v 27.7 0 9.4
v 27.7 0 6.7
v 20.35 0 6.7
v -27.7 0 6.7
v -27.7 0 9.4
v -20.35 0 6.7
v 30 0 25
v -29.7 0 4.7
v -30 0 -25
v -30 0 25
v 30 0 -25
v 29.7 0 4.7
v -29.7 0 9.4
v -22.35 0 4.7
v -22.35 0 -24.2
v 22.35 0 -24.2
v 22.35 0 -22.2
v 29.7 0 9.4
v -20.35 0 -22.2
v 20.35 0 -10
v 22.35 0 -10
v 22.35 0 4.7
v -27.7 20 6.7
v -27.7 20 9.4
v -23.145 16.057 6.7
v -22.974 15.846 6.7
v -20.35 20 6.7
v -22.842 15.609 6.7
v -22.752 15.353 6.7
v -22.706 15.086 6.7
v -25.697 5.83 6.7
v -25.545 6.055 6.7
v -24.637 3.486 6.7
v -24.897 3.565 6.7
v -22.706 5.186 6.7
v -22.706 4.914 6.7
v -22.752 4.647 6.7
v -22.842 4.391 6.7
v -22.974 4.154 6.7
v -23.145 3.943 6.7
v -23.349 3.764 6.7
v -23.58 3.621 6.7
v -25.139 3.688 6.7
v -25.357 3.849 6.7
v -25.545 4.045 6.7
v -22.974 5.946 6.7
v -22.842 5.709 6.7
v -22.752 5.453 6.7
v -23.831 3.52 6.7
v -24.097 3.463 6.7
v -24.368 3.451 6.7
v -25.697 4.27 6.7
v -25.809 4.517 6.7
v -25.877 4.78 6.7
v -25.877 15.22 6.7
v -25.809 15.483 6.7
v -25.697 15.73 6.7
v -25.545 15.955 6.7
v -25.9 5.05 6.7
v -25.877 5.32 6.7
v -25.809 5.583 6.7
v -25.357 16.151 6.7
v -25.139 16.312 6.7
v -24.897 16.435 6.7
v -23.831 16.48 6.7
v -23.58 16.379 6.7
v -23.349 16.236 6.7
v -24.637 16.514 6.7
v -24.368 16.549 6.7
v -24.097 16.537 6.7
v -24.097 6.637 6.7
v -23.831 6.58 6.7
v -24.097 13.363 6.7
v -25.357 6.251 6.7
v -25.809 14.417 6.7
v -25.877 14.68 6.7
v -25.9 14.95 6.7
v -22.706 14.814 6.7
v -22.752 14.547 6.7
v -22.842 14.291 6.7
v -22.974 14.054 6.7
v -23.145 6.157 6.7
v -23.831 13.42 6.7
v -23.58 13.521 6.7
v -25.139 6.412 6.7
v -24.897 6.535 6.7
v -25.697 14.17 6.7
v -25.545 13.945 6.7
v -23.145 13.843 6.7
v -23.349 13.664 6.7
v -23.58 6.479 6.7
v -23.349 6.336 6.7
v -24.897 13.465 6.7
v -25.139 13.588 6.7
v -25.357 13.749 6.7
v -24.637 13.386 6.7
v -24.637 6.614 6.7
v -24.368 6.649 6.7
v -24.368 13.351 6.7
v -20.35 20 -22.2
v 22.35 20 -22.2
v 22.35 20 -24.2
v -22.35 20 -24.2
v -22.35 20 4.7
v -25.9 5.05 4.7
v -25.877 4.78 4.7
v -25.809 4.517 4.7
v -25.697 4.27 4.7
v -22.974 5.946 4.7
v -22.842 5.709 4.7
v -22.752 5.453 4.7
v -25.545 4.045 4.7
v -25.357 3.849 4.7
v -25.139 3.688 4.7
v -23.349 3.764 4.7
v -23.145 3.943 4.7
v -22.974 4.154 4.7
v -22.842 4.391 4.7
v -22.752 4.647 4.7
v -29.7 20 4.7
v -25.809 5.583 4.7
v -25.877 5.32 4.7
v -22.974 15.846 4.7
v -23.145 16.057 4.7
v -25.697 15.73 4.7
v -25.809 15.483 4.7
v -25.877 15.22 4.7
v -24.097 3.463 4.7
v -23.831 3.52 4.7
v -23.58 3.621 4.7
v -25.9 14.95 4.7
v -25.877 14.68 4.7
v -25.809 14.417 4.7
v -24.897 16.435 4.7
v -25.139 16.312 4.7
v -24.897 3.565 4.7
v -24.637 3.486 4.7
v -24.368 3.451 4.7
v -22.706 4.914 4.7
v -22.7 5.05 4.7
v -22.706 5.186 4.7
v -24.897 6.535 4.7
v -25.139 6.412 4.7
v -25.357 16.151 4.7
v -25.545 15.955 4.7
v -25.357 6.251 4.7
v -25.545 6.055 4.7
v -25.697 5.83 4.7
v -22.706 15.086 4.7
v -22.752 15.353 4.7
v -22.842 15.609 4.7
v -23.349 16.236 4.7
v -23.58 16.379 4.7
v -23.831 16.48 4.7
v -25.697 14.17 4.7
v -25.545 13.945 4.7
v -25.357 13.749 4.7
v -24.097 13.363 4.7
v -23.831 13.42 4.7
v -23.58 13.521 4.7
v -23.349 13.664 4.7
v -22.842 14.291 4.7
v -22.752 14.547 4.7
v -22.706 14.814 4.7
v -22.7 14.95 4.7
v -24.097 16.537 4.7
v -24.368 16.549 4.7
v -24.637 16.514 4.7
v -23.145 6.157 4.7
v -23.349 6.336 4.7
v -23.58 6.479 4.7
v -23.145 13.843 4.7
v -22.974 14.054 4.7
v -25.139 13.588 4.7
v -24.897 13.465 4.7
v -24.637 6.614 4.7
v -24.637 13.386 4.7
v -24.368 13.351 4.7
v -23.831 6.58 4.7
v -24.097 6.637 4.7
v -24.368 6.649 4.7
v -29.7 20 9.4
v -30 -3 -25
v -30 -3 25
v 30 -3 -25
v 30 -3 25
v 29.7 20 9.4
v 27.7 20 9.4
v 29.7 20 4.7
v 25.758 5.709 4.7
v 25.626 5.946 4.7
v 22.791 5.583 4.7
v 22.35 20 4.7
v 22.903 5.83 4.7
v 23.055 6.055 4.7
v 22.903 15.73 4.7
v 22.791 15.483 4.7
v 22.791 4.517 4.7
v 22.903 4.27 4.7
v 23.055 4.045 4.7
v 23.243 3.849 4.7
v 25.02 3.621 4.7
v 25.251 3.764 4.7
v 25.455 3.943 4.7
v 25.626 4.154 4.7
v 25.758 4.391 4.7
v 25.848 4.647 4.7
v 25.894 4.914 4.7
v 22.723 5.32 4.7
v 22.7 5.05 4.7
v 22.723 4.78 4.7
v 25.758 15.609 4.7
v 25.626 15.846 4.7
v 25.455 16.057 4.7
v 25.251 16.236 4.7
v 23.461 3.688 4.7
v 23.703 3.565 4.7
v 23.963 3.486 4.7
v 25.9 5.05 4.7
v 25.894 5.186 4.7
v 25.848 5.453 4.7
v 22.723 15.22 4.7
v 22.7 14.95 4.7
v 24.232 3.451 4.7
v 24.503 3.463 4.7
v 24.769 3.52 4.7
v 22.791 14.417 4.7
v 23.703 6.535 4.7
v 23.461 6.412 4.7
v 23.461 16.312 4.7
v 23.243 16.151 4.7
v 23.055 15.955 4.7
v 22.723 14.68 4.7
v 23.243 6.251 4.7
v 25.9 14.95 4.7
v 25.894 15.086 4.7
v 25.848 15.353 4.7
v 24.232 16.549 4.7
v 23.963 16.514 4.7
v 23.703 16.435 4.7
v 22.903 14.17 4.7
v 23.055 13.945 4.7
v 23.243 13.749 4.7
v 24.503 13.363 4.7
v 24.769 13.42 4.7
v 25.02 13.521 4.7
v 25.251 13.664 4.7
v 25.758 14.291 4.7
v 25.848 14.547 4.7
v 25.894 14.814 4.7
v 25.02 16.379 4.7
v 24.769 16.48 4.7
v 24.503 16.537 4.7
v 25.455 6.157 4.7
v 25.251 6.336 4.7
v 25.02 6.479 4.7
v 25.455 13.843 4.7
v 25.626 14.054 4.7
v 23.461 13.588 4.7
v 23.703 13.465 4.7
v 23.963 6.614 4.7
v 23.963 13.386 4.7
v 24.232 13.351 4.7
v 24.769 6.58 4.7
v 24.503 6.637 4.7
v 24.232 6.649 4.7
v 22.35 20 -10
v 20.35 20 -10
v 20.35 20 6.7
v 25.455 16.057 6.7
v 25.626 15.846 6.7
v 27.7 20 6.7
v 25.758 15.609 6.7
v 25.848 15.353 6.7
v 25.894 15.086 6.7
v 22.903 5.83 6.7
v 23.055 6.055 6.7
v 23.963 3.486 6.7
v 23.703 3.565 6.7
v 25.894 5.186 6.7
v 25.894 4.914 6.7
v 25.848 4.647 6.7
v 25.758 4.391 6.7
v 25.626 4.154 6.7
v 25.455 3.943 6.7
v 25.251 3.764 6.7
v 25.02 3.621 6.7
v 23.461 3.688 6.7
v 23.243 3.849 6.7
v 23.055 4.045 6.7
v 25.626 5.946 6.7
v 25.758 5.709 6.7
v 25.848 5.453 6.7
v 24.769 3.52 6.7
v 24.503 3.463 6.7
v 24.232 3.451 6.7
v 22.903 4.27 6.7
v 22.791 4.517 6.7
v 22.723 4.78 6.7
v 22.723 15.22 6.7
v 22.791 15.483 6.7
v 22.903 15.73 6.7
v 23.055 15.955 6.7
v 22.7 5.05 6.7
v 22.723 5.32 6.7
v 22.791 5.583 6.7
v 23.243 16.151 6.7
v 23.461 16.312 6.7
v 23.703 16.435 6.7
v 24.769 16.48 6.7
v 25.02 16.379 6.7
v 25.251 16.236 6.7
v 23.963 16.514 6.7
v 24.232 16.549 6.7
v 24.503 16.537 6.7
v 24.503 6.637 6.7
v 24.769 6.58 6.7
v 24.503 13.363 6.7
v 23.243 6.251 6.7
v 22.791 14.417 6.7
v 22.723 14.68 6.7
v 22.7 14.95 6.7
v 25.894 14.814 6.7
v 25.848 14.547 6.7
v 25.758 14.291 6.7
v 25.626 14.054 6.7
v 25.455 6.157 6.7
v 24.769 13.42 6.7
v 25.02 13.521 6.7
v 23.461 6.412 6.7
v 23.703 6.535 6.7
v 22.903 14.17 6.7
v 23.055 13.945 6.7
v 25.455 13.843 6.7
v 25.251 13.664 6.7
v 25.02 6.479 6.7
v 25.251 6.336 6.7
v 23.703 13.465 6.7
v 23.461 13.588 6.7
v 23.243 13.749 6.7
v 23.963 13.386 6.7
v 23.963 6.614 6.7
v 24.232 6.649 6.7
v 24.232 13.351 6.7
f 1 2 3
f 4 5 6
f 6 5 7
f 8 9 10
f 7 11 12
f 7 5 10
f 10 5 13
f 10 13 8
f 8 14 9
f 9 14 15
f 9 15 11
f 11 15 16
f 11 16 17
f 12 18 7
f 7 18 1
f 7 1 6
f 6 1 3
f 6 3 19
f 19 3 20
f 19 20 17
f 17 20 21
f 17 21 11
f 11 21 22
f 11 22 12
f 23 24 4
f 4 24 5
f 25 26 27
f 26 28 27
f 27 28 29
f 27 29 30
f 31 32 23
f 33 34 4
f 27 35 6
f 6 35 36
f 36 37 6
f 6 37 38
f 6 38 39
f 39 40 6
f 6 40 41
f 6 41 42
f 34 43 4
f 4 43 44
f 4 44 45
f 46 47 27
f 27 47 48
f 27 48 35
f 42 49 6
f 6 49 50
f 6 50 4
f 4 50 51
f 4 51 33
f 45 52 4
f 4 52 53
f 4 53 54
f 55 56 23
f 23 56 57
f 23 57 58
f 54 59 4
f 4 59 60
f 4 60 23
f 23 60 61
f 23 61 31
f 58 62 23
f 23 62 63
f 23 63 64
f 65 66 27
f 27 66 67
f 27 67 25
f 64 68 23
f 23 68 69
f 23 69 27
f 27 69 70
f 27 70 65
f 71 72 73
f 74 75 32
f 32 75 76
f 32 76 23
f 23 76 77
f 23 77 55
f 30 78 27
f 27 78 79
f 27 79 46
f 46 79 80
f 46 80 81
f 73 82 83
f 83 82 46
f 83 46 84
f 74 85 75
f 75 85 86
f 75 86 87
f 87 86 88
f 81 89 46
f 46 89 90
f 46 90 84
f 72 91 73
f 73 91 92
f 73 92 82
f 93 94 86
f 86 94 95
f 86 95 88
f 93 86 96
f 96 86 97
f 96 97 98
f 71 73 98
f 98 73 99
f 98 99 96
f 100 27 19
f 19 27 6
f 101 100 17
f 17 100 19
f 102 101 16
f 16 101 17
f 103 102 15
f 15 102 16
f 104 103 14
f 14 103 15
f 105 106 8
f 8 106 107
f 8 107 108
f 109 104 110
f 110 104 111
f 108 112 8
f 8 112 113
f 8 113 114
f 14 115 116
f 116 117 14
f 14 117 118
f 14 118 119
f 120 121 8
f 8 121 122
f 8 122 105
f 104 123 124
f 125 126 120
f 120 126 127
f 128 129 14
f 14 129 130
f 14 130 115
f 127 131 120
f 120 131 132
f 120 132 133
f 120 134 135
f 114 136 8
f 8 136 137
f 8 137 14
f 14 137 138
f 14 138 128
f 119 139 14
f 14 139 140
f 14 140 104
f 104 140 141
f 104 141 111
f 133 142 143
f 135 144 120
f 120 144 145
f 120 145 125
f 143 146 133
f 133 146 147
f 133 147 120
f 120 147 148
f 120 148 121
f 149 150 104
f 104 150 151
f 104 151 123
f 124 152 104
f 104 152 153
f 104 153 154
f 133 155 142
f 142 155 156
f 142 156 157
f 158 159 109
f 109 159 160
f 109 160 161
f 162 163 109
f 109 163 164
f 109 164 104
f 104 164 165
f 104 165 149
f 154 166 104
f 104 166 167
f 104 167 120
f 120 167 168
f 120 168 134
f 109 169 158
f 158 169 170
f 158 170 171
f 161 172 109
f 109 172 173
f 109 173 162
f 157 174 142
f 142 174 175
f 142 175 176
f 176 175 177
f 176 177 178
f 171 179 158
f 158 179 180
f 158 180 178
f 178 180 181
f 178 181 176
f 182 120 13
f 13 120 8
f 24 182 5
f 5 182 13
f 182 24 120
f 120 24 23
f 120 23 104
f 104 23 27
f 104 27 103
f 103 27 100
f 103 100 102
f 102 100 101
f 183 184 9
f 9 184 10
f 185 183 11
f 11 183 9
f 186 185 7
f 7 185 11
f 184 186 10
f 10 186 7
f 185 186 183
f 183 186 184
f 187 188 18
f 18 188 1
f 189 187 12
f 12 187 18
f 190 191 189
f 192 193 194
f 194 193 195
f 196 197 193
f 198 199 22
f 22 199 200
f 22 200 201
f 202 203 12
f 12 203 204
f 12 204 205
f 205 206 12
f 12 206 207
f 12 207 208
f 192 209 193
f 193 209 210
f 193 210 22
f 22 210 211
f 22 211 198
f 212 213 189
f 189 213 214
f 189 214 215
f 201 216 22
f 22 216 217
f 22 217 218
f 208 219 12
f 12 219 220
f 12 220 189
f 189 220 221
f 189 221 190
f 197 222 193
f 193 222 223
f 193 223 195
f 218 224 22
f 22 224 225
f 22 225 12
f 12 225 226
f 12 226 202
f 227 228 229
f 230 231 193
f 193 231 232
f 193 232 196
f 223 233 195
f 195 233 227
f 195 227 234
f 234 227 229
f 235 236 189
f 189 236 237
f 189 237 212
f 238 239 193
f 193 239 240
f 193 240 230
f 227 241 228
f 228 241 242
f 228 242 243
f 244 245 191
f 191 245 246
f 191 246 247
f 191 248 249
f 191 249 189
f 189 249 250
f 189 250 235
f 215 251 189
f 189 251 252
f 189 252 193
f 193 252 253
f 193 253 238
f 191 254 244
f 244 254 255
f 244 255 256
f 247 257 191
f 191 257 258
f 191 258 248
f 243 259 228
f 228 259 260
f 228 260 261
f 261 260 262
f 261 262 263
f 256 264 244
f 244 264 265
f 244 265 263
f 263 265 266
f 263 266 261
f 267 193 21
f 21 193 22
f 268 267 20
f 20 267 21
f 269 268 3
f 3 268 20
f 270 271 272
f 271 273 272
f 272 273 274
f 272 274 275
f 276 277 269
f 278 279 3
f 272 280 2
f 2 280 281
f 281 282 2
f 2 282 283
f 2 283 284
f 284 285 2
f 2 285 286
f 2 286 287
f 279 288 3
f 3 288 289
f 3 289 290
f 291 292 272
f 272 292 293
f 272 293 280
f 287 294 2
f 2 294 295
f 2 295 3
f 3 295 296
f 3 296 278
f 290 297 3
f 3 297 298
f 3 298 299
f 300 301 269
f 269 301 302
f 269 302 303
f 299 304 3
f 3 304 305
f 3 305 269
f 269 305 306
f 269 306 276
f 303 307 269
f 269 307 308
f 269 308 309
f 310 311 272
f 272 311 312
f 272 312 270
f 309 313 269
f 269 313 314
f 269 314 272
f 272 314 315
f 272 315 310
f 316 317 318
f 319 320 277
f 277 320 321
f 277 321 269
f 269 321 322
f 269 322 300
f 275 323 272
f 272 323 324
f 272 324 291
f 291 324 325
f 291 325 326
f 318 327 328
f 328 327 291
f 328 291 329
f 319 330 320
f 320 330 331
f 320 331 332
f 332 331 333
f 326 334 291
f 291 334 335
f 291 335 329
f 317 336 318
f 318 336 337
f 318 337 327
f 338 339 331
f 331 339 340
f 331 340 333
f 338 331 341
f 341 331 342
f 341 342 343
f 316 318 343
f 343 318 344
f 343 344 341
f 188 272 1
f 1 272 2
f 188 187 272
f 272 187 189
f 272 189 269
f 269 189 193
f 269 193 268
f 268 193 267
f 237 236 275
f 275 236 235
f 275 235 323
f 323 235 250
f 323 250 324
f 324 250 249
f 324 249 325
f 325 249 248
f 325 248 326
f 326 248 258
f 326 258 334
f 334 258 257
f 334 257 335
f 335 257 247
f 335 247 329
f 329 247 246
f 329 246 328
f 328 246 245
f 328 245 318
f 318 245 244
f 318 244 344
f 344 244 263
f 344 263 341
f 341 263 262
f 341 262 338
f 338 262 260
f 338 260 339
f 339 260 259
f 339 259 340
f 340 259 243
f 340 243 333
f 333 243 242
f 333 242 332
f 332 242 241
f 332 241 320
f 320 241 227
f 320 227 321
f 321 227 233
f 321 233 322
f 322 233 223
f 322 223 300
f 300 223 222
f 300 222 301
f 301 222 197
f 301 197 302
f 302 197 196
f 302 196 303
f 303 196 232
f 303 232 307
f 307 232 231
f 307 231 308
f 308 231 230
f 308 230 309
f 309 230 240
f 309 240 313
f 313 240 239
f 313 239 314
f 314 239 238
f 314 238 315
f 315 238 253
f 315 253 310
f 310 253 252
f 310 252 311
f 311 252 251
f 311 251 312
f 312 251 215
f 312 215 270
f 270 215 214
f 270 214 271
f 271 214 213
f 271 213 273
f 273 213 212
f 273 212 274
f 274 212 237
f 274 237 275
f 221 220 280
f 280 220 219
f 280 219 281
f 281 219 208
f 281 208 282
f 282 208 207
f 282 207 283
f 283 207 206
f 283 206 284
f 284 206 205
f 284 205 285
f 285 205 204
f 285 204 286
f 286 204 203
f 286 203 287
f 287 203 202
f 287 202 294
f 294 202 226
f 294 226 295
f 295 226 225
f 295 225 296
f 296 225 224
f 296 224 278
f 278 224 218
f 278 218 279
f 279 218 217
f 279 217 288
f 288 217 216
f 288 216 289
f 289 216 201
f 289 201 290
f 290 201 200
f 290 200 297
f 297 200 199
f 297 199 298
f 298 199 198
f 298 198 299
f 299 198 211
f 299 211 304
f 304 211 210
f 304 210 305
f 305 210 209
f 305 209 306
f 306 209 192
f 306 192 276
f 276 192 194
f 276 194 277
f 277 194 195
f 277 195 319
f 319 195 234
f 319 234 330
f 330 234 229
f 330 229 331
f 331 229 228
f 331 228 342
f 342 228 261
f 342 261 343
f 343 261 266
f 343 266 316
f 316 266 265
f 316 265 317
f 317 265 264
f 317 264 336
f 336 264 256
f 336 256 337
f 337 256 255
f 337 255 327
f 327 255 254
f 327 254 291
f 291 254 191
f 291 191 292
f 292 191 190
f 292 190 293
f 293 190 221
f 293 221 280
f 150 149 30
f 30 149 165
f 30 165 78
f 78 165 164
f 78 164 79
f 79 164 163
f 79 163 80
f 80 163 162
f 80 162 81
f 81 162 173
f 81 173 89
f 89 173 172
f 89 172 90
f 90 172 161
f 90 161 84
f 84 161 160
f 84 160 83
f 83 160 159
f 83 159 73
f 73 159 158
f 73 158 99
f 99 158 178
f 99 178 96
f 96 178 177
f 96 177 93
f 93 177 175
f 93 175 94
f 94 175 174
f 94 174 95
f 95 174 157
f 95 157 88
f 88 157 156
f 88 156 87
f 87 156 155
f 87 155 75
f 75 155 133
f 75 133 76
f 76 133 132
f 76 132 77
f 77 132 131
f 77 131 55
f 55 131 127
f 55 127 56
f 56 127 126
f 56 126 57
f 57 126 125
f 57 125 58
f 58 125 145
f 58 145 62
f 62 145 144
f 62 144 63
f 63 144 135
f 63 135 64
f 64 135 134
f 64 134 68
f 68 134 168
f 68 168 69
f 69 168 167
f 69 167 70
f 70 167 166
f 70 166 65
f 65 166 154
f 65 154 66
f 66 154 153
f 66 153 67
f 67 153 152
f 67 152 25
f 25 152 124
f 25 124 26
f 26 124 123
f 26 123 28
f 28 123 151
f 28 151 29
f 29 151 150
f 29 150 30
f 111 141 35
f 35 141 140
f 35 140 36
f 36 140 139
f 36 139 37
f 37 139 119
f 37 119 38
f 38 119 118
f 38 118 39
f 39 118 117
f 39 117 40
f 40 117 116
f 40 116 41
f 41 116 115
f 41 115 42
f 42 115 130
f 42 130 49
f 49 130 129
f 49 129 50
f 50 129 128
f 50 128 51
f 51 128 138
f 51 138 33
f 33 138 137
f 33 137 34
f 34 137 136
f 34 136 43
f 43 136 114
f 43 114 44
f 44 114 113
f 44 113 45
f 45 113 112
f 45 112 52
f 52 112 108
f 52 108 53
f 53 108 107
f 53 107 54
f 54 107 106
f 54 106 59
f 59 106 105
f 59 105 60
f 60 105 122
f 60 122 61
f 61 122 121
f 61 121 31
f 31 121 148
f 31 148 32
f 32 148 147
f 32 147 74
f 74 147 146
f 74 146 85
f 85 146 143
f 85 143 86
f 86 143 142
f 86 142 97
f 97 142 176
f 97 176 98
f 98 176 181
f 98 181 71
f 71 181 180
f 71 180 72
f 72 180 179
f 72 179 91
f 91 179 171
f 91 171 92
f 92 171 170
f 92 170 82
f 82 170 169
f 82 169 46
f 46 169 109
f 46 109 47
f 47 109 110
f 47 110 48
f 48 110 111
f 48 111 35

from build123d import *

# Parameters (mm, degrees)
BOSS_EXTRUDE2_DEPTH   = 20
BOSS_EXTRUDE2_2_DEPTH = 20
SKETCH3_W             = 60
SKETCH3_H             = 50
BOSS_EXTRUDE3_DEPTH   = 3
SKETCH4_R             = 1.6
CUT_EXTRUDE1_DEPTH    = 10


with BuildPart() as part:
    # Sketch1 → Boss-Extrude2 (new body)
    with BuildSketch(Plane(origin=(0, 0, 0), x_dir=(1, 0, 0), z_dir=(0, 1, 0))):
        Polygon((-20.35, 22.2), (22.35, 22.2), (22.35, 24.2), (-22.35, 24.2), (-22.35, -4.7), (-29.7, -4.7), (-29.7, -9.4), (-27.7, -9.4), (-27.7, -6.7), (-20.35, -6.7), align=None)
    extrude(amount=BOSS_EXTRUDE2_DEPTH)



with BuildPart() as body_2:
    # Sketch1 → Boss-Extrude2 2 (new body)
    with BuildSketch(Plane(origin=(0, 0, 0), x_dir=(1, 0, 0), z_dir=(0, 1, 0))):
        Polygon((20.35, -6.7), (20.35, 10), (22.35, 10), (22.35, -4.7), (29.7, -4.7), (29.7, -9.4), (27.7, -9.4), (27.7, -6.7), align=None)
    extrude(amount=BOSS_EXTRUDE2_2_DEPTH)


with BuildPart() as part_1:
    add(part.part)

    add(body_2.part)  # Boss-Extrude3 merges body 2
    # Sketch3 → Boss-Extrude3 (add)
    with BuildSketch(Plane(origin=(0, 0, 0), x_dir=(1, 0, 0), z_dir=(0, 1, 0))):
        Rectangle(SKETCH3_W, SKETCH3_H)
    extrude(amount=-BOSS_EXTRUDE3_DEPTH)

    # Sketch4 → Cut-Extrude1 (cut)
    with BuildSketch(Plane.XY):
        with Locations((-24.3, 14.95)):
            Circle(SKETCH4_R)
        with Locations((24.3, 14.95)):
            Circle(SKETCH4_R)
        with Locations((24.3, 5.05)):
            Circle(SKETCH4_R)
        with Locations((-24.3, 5.05)):
            Circle(SKETCH4_R)
    extrude(amount=CUT_EXTRUDE1_DEPTH, mode=Mode.SUBTRACT)


solid = part_1.part
